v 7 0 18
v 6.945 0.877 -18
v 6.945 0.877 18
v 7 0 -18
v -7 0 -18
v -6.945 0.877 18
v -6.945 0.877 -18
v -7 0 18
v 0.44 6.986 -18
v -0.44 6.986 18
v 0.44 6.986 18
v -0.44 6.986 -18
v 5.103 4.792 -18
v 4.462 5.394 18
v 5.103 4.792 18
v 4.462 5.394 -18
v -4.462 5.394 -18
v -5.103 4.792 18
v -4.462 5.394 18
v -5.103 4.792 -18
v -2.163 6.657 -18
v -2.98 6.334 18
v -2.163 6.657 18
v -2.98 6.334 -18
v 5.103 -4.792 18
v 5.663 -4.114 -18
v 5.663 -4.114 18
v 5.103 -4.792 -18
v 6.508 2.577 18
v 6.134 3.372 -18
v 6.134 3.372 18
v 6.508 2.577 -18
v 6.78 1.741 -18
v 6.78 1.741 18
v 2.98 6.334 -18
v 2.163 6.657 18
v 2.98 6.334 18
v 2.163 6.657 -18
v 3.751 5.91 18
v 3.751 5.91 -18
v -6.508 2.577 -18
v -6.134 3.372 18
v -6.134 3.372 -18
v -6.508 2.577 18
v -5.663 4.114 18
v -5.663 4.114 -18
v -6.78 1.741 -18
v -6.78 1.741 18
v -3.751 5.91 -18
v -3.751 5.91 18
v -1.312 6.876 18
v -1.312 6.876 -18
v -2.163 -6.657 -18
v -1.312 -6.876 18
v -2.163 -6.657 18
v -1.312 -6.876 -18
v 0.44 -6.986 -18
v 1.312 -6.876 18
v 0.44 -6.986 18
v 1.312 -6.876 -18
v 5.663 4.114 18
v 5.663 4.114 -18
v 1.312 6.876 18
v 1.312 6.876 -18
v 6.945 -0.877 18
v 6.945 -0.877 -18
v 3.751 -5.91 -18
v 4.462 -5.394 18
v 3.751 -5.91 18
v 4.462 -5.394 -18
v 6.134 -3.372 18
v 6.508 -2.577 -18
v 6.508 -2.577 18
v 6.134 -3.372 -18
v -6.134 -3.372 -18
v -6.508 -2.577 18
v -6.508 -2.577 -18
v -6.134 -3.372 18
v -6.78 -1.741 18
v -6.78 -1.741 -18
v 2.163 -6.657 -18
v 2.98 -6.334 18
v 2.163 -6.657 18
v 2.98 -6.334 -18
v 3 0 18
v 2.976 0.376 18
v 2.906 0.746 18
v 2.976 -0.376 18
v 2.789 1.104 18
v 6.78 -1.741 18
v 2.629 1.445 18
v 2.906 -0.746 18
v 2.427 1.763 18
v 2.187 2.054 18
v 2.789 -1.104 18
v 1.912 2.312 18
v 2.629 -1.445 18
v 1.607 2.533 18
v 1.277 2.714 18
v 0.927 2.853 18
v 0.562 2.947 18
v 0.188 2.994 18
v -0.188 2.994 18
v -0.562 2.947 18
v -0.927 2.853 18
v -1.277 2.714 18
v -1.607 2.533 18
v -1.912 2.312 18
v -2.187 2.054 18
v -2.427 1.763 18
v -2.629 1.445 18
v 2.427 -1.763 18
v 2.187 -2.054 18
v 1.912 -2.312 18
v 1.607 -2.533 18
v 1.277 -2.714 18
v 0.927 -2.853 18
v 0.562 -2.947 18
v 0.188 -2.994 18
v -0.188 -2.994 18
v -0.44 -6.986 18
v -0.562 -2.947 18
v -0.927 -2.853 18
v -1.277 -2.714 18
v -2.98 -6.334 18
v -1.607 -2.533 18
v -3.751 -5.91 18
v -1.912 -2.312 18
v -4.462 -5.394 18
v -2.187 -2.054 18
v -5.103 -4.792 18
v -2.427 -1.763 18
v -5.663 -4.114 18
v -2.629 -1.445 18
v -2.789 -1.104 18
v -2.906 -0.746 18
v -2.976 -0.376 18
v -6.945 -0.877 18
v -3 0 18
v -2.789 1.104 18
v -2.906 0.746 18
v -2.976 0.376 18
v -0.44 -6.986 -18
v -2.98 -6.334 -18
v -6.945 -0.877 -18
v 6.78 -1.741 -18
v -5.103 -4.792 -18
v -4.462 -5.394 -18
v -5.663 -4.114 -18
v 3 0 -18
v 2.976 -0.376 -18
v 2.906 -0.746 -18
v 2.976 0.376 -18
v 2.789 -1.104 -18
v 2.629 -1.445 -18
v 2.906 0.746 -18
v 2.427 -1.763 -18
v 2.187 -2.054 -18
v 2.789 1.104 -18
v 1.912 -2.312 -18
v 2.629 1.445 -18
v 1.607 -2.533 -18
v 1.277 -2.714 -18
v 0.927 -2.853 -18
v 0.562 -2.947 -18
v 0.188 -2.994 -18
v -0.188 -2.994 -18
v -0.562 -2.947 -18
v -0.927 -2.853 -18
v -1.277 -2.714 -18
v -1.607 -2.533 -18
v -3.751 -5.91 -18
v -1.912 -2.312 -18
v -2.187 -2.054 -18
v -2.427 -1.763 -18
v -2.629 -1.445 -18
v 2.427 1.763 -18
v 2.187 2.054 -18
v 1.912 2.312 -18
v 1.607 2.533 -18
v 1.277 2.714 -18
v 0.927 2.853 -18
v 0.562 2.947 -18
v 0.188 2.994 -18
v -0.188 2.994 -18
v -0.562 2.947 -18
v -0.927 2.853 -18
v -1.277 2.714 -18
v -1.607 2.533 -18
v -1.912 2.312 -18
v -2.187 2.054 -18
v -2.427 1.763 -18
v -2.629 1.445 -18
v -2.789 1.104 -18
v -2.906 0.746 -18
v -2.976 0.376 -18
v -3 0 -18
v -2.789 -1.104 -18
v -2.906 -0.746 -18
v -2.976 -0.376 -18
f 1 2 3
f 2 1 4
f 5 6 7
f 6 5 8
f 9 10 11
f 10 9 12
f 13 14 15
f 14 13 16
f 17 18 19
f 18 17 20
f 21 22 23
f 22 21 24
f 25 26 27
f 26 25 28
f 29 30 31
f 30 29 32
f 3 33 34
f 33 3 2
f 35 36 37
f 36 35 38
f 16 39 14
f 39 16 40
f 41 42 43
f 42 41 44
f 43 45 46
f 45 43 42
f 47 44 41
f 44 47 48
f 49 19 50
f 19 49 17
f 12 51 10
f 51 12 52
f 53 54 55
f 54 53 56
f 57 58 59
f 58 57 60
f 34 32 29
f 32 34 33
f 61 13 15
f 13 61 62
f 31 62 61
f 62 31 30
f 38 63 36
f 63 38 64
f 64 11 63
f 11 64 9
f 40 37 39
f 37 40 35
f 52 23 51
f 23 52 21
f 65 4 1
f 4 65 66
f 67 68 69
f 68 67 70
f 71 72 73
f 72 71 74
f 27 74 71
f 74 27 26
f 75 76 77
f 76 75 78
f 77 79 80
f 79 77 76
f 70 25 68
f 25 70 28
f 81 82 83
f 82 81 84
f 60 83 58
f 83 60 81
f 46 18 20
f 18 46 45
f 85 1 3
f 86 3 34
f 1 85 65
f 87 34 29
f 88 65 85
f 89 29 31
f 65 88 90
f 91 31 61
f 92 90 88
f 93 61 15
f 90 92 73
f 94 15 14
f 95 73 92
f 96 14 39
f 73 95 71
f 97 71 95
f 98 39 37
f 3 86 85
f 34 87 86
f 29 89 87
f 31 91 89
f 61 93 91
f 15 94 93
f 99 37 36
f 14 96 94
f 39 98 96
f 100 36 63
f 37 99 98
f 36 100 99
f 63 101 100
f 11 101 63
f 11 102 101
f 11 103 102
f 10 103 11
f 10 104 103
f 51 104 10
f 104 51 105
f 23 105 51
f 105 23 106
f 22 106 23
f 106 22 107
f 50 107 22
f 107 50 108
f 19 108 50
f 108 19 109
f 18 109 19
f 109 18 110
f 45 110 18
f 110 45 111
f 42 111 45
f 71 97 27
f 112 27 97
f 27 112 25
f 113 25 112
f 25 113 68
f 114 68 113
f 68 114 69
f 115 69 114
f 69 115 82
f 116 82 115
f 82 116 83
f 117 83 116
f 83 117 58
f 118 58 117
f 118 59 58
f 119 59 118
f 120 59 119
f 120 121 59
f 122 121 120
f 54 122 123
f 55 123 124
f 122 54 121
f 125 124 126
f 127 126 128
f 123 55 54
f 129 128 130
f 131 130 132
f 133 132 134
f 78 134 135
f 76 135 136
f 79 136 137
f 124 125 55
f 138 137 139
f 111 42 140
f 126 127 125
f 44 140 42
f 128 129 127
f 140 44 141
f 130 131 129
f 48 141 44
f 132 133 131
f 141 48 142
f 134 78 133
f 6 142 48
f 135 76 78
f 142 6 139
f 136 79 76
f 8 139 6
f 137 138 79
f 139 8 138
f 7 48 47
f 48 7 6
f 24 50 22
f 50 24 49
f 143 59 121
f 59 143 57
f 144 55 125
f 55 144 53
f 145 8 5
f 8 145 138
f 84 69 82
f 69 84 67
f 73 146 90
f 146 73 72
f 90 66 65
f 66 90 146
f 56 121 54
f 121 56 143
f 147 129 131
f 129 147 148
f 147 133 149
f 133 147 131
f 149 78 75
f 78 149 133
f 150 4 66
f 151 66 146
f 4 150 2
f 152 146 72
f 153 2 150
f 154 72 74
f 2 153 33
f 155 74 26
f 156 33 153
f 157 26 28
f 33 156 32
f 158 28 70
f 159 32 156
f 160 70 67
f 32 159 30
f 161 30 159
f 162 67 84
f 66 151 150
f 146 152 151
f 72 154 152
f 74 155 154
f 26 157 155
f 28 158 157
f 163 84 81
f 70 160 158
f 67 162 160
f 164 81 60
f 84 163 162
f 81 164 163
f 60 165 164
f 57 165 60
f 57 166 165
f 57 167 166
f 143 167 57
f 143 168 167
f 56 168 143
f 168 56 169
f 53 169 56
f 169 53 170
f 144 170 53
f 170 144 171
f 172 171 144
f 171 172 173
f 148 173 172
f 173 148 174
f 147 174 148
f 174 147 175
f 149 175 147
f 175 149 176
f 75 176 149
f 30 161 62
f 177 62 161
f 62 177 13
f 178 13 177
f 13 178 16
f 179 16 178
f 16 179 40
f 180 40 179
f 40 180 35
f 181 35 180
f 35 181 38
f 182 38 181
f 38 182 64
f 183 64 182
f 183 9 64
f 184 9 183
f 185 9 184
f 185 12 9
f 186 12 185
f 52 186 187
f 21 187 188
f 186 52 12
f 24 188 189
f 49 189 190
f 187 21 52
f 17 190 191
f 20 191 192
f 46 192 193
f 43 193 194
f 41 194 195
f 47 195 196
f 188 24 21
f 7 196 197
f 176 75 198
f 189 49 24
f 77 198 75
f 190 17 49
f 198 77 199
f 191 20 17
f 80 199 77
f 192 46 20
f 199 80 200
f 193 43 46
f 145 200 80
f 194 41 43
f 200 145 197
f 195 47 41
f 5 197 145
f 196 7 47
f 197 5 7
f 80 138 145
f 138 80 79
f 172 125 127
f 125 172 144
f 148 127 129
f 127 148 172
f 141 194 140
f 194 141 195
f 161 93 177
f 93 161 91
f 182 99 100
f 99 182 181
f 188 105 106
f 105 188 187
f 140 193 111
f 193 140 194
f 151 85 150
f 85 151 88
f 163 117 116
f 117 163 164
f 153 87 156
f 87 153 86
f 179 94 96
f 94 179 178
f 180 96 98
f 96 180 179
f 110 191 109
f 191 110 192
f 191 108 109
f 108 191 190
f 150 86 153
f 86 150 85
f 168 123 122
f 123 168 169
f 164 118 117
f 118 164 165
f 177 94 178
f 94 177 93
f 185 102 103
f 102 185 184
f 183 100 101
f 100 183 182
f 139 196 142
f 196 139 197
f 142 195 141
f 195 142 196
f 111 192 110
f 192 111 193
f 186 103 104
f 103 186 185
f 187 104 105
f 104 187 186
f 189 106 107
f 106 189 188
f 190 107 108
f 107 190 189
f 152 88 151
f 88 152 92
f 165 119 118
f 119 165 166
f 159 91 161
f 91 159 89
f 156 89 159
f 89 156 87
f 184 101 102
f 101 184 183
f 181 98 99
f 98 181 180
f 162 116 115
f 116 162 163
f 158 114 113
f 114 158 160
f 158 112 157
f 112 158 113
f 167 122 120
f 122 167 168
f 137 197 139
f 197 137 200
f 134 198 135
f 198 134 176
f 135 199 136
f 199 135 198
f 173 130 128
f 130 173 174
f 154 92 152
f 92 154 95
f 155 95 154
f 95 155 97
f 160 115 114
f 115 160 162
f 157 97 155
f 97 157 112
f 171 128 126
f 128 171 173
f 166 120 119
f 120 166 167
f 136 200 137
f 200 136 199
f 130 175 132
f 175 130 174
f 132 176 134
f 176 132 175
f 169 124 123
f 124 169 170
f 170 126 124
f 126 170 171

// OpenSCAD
$fn = 50;


difference() {
	union() {
		translate(v = [0, 0, -18.0000000000]) {
			cylinder(h = 36, r = 7.0000000000);
		}
	}
	union() {
		translate(v = [0, 0, -100.0000000000]) {
			cylinder(h = 200, r = 3.0000000000);
		}
	}
}
